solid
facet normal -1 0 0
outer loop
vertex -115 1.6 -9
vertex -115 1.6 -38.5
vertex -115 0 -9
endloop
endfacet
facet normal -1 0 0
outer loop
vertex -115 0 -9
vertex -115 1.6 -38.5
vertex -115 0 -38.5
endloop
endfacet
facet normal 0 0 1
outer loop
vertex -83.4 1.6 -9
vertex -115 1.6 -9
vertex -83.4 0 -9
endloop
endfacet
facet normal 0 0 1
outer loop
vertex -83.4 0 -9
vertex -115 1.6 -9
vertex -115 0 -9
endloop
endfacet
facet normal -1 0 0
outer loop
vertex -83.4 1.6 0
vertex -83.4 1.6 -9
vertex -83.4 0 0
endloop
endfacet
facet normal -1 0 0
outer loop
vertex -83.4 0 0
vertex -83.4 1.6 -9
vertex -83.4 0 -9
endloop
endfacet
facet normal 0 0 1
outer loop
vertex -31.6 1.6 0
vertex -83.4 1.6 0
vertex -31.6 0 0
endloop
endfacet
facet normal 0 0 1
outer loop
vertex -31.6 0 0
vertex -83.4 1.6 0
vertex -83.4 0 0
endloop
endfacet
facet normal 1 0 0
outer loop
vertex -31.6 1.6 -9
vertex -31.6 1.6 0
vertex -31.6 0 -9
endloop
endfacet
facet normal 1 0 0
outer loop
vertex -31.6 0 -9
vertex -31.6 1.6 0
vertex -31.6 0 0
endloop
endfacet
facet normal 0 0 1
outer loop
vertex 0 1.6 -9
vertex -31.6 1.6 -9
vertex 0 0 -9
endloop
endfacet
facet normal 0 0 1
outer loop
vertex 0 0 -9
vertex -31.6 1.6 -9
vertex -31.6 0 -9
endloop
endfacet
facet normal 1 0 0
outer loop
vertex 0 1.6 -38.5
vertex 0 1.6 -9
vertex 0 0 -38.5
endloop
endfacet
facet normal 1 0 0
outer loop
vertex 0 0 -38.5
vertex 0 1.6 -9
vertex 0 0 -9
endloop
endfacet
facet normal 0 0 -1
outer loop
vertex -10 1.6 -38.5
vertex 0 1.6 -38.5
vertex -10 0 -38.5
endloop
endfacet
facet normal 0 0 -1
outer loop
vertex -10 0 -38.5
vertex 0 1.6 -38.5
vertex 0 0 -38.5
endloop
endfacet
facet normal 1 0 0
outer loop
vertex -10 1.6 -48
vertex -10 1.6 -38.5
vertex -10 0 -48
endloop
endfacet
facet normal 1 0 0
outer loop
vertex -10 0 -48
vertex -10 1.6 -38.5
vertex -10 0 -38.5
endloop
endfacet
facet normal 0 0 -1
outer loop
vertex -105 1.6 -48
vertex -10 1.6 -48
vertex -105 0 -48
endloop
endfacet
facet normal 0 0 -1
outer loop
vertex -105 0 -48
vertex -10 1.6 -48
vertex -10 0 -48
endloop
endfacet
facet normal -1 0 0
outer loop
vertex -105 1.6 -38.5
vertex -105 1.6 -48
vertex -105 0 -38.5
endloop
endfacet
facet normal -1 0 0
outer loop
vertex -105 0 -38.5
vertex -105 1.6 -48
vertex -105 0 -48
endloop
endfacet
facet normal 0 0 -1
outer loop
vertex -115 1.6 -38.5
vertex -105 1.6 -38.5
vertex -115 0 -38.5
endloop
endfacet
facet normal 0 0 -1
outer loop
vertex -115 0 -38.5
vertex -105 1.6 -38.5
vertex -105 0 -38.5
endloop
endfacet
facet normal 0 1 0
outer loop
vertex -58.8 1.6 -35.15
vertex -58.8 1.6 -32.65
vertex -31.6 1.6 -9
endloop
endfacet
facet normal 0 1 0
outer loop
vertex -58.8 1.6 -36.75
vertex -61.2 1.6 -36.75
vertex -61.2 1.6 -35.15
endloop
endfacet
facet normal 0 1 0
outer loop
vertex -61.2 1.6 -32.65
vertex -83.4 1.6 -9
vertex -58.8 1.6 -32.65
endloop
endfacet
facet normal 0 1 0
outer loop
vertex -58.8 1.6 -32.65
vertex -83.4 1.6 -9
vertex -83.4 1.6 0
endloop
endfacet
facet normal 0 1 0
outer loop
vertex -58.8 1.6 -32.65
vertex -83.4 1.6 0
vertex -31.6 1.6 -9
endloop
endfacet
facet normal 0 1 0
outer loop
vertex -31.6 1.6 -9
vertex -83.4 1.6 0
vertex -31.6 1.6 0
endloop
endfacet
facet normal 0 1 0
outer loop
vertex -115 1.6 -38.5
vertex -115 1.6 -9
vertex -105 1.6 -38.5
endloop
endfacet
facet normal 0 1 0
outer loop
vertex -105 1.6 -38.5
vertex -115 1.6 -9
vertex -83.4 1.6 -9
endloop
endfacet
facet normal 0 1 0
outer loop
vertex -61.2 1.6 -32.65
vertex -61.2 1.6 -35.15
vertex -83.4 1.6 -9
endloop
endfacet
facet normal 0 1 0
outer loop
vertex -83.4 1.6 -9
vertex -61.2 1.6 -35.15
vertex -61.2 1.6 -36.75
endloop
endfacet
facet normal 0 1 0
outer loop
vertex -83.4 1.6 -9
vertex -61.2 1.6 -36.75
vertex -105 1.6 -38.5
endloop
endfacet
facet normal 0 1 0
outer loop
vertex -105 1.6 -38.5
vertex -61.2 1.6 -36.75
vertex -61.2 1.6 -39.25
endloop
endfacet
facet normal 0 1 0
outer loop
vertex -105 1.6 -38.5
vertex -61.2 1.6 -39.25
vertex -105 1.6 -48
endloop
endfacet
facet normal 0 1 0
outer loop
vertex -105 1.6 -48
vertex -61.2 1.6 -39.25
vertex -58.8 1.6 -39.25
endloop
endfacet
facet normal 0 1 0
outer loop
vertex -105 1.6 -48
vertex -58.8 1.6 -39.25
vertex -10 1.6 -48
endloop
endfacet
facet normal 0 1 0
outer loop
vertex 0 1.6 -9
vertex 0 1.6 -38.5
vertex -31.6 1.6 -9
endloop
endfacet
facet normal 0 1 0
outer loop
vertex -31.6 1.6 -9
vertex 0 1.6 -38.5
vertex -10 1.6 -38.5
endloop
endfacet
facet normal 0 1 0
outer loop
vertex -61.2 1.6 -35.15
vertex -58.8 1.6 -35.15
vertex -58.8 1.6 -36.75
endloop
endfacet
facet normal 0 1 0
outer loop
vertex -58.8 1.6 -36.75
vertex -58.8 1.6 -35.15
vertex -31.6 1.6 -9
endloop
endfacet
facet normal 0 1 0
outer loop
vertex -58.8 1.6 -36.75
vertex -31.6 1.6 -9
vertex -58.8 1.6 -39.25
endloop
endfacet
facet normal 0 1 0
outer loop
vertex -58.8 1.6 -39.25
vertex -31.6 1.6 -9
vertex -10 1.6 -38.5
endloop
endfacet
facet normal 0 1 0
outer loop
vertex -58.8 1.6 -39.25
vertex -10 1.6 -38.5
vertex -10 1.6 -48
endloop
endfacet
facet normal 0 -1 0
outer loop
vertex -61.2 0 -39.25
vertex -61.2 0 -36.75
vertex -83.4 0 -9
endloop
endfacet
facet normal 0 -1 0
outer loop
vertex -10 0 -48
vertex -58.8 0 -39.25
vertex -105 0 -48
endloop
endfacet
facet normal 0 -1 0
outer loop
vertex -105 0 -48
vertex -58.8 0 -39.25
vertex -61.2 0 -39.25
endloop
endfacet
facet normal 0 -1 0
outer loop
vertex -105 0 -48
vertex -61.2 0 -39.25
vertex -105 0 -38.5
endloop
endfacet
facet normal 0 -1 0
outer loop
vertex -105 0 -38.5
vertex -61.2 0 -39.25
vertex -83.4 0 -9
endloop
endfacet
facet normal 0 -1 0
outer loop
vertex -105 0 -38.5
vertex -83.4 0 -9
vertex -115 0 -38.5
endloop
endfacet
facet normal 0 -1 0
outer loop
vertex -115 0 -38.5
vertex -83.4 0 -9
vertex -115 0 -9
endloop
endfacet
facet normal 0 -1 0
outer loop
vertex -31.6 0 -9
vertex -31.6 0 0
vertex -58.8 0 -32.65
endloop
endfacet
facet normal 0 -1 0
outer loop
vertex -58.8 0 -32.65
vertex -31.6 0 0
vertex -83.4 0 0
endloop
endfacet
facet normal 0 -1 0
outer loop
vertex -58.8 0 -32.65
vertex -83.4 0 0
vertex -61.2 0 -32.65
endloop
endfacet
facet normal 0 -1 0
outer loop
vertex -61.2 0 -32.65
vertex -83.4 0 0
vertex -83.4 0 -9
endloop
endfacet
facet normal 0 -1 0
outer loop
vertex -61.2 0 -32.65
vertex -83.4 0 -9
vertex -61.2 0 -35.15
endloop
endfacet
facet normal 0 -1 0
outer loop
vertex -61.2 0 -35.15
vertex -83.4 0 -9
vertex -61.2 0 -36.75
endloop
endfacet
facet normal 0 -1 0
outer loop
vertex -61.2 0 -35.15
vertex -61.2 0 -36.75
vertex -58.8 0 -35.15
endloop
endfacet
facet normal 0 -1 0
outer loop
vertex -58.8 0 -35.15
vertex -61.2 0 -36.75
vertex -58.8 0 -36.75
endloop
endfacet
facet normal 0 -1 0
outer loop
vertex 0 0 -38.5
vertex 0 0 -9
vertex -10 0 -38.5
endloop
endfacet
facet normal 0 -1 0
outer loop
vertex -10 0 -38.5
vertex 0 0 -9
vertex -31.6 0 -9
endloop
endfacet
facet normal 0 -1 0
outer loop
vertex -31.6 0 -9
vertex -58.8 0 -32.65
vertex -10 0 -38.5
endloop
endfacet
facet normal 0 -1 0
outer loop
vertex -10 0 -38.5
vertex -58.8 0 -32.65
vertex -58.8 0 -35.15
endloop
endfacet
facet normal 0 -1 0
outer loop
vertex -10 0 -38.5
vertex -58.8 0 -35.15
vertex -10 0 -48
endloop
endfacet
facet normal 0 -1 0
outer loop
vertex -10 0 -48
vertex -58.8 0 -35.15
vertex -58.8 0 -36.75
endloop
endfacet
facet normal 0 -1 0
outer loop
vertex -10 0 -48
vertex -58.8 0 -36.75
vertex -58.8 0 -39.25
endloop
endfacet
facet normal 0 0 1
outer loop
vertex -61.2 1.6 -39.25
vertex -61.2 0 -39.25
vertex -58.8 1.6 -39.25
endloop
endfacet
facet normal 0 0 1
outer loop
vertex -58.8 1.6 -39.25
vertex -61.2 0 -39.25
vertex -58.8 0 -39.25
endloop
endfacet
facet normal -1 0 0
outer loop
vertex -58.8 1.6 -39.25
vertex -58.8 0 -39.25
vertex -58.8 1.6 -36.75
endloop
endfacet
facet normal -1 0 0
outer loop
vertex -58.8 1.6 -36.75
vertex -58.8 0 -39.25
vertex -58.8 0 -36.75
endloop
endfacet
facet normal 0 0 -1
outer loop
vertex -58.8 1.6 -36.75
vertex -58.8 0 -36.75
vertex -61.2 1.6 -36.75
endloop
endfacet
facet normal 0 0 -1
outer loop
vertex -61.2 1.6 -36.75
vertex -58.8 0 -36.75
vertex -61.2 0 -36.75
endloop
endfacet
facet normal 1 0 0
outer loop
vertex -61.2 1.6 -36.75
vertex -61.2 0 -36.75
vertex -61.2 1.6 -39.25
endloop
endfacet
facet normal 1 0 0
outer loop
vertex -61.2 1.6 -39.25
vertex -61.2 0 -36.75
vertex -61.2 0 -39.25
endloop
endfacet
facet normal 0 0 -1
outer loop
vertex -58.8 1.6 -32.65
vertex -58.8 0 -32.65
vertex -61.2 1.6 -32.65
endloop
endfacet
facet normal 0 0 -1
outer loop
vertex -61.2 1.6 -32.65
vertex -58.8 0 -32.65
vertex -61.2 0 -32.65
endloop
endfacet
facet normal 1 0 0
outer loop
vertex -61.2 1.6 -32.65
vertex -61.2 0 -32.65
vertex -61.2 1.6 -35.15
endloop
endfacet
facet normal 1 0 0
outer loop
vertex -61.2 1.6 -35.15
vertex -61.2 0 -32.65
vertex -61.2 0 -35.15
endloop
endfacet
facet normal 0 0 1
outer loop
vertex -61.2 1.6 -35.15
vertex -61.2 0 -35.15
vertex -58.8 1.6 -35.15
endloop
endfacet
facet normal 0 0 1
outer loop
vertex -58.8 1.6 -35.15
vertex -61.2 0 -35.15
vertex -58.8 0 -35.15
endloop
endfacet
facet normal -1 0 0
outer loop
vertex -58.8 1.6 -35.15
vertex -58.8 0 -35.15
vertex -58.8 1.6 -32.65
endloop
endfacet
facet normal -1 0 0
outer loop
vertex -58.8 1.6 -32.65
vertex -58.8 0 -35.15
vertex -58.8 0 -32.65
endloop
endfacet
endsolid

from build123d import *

# Parameters (mm, degrees)
EXTRUDE_1_DEPTH     = 1.6
SKETCH_2_W          = 2.4
SKETCH_2_H          = 2.5
CUT_EXTRUDE_1_DEPTH = 10


with BuildPart() as part:
    # 草图1 → 凸台-拉伸1 (new body)
    with BuildSketch(Plane(origin=(0, 0, 0), x_dir=(1, 0, 0), z_dir=(0, 1, 0))):
        Polygon((-115, 9), (-83.4, 9), (-83.4, 0), (-31.6, 0), (-31.6, 9), (0, 9), (0, 38.5), (-10, 38.5), (-10, 48), (-105, 48), (-105, 38.5), (-115, 38.5), align=None)
    extrude(amount=EXTRUDE_1_DEPTH)

    # 草图2 → 切除-拉伸1 (cut)
    with BuildSketch(Plane(origin=(0, 1.6, 0), x_dir=(1, 0, 0), z_dir=(0, 1, 0))):
        with Locations((-60, 38)):
            Rectangle(SKETCH_2_W, SKETCH_2_H)
        with Locations((-60, 33.9)):
            Rectangle(SKETCH_2_W, SKETCH_2_H)
    extrude(amount=-CUT_EXTRUDE_1_DEPTH, mode=Mode.SUBTRACT)


solid = part.part
